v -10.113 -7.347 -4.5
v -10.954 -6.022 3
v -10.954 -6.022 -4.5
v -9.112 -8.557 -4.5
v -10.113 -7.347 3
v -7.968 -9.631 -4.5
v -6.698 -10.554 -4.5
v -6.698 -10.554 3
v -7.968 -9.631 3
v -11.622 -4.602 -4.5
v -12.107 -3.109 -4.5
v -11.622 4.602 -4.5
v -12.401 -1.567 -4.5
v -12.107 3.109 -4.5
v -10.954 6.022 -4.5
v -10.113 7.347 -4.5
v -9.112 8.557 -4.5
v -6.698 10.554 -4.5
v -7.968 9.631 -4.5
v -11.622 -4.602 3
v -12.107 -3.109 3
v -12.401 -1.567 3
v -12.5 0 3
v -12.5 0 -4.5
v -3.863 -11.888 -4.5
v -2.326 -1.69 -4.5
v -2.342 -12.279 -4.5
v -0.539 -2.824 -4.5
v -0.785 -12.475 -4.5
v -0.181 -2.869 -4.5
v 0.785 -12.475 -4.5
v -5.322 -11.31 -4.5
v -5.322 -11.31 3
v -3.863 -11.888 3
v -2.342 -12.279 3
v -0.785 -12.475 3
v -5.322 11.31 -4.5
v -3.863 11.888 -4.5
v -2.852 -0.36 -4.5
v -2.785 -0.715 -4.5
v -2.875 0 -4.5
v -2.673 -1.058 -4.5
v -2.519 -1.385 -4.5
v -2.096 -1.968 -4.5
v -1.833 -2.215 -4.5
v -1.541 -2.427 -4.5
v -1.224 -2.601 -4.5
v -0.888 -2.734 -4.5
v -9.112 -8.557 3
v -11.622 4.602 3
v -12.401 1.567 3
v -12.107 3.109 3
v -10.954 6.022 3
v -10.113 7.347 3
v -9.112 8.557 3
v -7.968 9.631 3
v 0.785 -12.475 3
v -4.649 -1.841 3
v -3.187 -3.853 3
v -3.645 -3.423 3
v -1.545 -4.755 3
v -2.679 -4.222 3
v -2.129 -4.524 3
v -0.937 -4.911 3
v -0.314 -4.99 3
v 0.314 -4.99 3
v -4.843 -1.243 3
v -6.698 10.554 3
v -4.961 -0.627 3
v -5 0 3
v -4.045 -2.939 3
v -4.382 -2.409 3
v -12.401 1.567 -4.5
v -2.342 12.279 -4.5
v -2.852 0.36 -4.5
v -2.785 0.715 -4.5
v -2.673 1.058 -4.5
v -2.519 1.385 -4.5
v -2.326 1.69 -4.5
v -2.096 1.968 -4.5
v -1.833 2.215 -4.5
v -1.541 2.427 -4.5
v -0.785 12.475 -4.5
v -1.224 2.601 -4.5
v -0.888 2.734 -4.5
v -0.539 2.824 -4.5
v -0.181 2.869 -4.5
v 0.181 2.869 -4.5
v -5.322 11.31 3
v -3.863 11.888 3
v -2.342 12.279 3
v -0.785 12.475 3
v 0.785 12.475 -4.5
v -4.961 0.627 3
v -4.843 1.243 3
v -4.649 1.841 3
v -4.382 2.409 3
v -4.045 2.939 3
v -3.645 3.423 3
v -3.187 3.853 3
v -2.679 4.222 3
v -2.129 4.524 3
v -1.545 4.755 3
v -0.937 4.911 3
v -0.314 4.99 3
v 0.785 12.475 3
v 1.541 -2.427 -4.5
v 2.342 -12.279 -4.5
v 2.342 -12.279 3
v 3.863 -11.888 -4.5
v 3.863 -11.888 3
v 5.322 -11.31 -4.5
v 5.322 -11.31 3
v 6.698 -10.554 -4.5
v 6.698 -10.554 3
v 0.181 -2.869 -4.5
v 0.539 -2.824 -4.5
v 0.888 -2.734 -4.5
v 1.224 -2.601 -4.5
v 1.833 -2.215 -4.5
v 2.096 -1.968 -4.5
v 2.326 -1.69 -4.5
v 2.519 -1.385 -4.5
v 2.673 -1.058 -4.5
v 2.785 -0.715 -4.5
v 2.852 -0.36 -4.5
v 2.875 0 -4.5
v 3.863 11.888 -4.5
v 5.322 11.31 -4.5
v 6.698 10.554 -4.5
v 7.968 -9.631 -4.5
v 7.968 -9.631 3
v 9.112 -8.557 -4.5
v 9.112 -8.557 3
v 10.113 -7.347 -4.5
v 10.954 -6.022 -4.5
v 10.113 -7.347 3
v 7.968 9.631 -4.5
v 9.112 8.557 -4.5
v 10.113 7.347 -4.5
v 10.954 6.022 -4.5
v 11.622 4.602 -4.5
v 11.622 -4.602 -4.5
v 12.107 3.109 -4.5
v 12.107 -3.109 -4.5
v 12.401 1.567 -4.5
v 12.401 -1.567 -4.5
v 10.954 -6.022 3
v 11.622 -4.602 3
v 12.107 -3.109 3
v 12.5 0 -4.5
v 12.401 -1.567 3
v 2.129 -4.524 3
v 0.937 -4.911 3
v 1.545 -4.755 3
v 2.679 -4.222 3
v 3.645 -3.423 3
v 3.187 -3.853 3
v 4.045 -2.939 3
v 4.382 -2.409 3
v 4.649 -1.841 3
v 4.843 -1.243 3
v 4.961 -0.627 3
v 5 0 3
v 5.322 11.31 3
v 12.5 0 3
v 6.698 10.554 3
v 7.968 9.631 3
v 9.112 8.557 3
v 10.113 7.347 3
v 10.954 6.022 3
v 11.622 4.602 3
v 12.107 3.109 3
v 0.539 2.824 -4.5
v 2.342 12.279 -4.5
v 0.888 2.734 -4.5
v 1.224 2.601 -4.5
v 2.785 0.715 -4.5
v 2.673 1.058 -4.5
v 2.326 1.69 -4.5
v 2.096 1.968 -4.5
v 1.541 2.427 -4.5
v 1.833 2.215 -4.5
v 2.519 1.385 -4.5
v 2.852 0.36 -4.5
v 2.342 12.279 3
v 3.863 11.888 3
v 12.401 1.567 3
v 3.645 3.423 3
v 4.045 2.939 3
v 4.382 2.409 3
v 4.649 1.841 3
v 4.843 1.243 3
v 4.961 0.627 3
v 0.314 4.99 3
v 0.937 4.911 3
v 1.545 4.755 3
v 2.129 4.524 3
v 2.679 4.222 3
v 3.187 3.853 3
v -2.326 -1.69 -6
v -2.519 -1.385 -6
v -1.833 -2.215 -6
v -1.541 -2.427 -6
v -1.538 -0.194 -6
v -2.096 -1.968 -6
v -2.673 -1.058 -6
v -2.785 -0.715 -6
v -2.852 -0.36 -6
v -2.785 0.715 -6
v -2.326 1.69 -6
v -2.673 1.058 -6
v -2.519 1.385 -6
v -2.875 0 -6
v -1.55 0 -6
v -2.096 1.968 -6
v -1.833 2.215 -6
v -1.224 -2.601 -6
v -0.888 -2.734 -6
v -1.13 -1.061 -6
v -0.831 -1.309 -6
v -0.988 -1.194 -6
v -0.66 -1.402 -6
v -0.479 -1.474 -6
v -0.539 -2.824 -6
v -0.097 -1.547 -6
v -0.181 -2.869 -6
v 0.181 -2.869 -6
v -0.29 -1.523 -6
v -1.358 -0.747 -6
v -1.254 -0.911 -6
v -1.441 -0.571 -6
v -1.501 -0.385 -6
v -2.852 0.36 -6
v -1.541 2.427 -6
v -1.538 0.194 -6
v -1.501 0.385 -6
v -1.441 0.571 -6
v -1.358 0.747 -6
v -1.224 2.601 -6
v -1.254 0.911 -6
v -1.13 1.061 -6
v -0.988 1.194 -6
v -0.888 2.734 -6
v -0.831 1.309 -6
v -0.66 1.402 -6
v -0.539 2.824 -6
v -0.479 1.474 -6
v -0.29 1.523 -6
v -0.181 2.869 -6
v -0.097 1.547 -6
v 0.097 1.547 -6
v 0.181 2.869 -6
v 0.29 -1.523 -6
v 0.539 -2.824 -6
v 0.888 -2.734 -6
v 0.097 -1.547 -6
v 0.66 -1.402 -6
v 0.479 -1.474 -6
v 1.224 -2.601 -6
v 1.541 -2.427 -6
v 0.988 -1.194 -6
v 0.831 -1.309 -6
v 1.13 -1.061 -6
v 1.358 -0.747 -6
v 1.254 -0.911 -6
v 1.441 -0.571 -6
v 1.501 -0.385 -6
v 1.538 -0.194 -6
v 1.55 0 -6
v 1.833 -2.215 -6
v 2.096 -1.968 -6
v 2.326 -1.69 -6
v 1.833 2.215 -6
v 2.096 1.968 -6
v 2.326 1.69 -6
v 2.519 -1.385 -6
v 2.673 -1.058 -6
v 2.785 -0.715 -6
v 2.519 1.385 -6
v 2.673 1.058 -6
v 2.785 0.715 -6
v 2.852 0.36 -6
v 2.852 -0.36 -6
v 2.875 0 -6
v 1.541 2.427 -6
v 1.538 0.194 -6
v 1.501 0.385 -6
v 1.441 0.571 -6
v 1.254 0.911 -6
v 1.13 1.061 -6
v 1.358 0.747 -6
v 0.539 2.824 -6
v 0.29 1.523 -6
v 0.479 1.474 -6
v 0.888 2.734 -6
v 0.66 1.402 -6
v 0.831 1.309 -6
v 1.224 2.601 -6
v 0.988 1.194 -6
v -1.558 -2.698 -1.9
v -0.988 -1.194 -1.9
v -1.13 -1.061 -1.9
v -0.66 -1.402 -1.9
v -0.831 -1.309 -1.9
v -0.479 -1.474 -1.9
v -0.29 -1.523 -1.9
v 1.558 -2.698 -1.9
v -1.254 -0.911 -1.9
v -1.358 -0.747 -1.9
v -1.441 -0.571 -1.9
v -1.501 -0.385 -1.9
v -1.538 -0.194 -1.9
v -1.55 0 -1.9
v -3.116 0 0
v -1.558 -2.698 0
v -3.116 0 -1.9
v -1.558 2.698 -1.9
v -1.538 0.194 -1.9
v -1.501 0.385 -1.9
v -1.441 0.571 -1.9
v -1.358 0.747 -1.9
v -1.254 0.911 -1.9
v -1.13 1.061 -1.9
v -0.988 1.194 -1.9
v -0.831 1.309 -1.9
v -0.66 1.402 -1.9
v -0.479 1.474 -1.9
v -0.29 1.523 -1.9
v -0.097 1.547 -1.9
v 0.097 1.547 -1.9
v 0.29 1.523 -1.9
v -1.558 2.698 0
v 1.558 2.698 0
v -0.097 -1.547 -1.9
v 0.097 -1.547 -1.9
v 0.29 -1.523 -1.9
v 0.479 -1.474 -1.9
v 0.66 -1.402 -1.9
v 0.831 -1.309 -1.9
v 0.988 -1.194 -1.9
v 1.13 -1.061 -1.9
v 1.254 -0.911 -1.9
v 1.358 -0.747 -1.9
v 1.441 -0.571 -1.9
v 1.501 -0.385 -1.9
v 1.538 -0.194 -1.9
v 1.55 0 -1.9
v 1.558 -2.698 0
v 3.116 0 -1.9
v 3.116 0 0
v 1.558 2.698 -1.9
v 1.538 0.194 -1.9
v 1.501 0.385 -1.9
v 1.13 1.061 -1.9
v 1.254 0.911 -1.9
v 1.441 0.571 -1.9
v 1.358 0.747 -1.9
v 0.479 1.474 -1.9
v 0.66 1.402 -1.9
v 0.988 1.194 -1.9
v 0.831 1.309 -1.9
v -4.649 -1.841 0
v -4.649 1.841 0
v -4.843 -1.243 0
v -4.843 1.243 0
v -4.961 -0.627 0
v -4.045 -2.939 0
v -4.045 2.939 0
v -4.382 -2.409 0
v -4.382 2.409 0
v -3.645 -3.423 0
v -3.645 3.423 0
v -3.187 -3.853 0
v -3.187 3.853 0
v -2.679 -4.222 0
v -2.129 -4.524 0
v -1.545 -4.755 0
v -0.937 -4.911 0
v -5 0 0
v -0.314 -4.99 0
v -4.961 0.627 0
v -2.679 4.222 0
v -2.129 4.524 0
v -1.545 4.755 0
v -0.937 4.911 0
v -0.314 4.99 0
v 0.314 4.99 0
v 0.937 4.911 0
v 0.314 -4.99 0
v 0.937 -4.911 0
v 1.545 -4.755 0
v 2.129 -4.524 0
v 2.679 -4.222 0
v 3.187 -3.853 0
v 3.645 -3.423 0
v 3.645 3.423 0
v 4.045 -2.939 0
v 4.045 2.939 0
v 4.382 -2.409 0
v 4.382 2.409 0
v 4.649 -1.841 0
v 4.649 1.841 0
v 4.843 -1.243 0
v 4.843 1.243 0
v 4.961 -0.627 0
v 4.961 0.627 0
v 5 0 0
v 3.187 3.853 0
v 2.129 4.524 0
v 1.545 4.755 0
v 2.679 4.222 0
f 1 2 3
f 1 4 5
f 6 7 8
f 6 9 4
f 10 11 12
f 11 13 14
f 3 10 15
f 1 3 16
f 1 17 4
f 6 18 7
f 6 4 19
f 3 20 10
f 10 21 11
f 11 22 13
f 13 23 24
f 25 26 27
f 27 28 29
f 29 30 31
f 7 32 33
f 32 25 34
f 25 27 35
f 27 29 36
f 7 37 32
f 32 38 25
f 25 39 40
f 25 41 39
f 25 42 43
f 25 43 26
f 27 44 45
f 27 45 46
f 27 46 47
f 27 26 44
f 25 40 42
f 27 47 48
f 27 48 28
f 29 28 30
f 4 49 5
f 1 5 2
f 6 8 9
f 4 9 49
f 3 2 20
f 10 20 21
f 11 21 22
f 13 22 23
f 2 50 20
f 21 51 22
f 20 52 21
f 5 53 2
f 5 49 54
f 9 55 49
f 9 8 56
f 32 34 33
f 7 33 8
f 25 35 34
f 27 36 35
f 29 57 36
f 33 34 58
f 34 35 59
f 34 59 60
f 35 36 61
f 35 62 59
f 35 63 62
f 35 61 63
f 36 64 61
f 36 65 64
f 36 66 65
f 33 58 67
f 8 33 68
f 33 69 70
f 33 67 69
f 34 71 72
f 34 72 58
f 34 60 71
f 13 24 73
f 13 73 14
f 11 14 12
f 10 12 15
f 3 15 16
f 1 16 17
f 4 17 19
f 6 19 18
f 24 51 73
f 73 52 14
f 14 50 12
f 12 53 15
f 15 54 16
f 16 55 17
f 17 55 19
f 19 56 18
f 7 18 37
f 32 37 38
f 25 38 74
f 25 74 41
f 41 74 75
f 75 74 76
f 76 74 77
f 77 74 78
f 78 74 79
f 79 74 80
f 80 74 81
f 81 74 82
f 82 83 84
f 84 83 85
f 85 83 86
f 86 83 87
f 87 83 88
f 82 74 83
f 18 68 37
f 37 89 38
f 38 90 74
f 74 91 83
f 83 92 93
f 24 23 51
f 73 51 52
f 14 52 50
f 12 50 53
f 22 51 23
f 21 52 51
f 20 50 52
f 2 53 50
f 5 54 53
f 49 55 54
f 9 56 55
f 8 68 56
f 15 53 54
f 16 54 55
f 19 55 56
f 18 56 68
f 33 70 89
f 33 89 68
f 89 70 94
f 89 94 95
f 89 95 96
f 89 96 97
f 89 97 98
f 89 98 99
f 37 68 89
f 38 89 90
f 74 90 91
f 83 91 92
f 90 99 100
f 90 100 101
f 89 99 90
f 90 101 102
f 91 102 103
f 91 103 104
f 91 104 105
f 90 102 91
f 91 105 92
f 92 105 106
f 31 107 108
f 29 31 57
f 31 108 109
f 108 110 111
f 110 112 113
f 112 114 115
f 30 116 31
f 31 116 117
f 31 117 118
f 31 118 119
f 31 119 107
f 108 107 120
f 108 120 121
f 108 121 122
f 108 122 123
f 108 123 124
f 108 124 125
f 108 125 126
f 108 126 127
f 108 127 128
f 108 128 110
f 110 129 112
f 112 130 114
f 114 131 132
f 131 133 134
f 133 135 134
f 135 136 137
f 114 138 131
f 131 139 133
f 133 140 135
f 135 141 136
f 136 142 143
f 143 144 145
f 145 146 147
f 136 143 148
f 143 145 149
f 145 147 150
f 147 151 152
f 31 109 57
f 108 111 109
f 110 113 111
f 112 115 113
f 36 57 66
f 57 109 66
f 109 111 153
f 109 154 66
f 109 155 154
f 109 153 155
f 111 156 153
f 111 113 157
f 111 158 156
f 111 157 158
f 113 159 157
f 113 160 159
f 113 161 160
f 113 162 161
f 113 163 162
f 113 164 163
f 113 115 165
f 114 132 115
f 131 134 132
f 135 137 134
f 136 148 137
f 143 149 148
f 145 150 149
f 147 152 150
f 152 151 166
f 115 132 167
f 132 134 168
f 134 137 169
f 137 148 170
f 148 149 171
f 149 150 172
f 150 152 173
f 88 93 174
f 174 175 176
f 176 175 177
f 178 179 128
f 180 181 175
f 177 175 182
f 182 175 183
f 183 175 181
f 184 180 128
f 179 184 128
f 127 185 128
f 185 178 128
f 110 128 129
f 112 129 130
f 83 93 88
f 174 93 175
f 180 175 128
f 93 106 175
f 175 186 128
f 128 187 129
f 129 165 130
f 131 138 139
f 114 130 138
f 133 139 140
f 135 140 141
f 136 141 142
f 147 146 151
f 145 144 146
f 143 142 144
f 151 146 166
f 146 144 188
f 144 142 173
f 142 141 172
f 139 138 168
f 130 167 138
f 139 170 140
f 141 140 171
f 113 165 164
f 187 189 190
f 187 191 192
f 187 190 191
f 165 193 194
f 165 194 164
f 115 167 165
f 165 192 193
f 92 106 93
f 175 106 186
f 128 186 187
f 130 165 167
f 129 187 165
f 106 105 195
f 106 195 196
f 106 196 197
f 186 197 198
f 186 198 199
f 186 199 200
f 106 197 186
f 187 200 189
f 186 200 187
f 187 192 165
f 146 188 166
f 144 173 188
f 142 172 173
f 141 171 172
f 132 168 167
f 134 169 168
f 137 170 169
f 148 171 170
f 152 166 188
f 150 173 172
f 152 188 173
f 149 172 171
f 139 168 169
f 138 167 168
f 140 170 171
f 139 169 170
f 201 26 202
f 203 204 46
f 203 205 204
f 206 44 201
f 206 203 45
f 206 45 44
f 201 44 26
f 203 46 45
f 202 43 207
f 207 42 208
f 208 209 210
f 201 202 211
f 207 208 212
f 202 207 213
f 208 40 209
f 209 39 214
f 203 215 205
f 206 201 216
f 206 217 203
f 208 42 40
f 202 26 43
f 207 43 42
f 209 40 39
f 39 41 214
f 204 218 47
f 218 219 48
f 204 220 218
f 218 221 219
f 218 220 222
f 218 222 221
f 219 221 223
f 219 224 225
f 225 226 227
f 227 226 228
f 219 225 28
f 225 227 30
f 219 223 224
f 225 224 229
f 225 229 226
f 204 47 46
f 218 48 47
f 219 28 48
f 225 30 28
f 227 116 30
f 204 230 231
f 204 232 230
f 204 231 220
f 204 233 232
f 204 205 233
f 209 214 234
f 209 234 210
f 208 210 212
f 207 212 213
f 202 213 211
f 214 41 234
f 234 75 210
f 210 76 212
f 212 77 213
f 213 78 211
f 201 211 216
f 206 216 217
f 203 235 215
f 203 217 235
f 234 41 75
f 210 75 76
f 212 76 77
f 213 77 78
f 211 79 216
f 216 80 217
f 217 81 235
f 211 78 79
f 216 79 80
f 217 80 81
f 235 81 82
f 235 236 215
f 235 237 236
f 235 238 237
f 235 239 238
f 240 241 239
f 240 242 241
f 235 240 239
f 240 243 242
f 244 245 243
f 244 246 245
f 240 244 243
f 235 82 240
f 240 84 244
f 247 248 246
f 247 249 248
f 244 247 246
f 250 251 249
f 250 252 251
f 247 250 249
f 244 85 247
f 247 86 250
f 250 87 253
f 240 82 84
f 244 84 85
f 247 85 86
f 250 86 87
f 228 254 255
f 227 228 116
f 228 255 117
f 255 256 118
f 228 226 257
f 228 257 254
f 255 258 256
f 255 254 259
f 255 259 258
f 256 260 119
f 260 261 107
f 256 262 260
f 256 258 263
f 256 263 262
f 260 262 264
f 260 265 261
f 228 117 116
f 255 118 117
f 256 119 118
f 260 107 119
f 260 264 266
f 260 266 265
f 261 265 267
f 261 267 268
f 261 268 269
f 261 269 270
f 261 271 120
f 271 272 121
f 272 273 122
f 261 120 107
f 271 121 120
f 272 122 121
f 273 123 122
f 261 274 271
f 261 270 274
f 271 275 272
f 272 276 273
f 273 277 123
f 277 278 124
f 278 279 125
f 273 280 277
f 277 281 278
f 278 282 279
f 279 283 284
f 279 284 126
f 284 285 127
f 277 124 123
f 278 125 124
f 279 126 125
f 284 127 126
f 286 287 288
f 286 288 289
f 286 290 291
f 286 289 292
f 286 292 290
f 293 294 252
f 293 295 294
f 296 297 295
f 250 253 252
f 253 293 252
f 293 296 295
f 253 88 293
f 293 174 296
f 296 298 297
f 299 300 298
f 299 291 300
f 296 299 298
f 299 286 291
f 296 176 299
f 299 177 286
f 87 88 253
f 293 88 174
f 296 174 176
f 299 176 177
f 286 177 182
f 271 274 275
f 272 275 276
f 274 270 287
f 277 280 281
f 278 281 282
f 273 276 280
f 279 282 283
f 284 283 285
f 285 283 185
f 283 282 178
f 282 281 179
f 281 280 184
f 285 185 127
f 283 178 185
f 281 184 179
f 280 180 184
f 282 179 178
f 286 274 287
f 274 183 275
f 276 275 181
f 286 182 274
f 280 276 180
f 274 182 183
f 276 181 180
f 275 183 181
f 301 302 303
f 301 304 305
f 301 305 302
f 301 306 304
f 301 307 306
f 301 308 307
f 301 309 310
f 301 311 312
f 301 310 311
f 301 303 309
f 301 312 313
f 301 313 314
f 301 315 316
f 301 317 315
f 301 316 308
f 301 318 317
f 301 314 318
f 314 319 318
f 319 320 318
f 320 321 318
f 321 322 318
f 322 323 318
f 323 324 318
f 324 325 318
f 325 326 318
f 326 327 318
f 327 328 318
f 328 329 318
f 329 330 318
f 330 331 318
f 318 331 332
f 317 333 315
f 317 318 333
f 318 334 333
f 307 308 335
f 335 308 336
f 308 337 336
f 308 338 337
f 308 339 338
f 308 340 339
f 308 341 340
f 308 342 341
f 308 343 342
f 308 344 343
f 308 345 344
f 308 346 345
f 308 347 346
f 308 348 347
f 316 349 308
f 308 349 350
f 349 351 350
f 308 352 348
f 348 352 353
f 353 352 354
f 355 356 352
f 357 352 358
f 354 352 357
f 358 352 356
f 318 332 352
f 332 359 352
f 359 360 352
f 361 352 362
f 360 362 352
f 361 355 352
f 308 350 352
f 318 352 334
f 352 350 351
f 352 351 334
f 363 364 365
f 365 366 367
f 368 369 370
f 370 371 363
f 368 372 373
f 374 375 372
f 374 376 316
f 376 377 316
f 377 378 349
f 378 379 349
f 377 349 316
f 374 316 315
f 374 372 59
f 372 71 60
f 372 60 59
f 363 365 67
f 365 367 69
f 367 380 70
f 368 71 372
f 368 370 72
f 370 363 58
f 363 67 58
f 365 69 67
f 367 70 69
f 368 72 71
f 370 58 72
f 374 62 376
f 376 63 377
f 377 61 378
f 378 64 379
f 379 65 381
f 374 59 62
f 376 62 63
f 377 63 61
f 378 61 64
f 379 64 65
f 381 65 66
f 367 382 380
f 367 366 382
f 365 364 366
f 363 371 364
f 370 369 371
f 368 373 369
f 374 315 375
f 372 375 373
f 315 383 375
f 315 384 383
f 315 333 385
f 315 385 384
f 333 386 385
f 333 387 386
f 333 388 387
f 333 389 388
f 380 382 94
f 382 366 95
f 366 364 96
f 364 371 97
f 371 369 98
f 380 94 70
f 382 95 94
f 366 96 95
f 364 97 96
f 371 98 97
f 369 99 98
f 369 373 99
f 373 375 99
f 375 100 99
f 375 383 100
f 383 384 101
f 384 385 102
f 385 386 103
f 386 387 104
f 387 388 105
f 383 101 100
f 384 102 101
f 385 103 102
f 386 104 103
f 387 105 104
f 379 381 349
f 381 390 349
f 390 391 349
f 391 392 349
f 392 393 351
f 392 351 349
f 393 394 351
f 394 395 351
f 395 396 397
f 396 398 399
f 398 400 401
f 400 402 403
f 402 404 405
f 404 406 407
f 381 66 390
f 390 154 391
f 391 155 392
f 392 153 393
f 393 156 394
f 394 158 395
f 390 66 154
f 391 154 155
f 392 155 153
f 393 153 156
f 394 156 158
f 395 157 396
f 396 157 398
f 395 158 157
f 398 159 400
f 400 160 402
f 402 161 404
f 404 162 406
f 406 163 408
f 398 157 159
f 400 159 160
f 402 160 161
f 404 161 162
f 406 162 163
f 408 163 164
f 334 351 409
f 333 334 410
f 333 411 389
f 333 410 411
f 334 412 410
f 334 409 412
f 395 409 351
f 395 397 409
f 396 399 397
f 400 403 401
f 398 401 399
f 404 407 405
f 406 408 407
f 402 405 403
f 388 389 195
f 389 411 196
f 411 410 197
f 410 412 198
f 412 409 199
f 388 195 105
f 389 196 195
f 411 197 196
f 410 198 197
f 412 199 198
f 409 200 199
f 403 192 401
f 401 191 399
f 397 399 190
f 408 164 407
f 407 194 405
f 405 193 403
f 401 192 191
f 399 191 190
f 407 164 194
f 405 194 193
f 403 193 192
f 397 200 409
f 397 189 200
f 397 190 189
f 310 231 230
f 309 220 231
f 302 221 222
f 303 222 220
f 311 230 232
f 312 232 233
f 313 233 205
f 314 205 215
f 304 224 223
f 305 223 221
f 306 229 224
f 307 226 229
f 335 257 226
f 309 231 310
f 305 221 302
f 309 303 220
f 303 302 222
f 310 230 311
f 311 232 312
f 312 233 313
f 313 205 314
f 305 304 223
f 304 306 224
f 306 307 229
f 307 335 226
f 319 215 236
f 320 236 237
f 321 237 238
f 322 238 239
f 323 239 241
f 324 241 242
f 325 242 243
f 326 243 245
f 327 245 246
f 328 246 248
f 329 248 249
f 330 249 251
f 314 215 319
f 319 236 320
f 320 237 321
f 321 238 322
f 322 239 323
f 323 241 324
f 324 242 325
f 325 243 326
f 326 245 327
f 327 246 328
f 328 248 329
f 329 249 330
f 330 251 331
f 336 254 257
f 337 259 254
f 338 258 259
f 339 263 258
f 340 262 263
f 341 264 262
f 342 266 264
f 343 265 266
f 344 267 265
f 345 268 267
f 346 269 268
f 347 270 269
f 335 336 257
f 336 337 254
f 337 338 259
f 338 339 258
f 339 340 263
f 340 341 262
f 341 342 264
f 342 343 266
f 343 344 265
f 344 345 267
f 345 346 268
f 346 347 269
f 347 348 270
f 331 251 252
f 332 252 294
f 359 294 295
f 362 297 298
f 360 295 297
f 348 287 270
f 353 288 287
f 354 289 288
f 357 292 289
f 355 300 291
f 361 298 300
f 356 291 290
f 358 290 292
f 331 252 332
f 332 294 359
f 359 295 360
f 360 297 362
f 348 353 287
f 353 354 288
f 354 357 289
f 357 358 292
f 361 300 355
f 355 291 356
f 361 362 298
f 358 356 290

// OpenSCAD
$fn = 50;

difference() {
	union() {
		translate(v = [0, 0, -4.5]) {
			cylinder(h = 7.5, r = 12.5);
		}
		#translate(v = [0, 0, -6.0]) {
			cylinder(h = 6, r = 2.875);
		}
	}
	union() {
		translate(v = [0, 0, 0]) {
			rotate(a = [0, 0, 0]) {
				difference() {
					union() {
						translate(v = [0, 0, -1.9]) {
							linear_extrude(height = 1.9) {
								polygon(points = [[3.1158, 0.0], [1.5579000000000005, 2.698361953111554], [-1.5578999999999994, 2.6983619531115544], [-3.1158, 3.815754496783323e-16], [-1.5579000000000014, -2.6983619531115535], [1.557899999999998, -2.6983619531115552]]);
							}
						}
					}
					union();
				}
			}
		}
		#cylinder(h = 3, r = 5.0);
		#translate(v = [0, 0, -100.0]) {
			cylinder(h = 200, r = 1.55);
		}
	}
}
